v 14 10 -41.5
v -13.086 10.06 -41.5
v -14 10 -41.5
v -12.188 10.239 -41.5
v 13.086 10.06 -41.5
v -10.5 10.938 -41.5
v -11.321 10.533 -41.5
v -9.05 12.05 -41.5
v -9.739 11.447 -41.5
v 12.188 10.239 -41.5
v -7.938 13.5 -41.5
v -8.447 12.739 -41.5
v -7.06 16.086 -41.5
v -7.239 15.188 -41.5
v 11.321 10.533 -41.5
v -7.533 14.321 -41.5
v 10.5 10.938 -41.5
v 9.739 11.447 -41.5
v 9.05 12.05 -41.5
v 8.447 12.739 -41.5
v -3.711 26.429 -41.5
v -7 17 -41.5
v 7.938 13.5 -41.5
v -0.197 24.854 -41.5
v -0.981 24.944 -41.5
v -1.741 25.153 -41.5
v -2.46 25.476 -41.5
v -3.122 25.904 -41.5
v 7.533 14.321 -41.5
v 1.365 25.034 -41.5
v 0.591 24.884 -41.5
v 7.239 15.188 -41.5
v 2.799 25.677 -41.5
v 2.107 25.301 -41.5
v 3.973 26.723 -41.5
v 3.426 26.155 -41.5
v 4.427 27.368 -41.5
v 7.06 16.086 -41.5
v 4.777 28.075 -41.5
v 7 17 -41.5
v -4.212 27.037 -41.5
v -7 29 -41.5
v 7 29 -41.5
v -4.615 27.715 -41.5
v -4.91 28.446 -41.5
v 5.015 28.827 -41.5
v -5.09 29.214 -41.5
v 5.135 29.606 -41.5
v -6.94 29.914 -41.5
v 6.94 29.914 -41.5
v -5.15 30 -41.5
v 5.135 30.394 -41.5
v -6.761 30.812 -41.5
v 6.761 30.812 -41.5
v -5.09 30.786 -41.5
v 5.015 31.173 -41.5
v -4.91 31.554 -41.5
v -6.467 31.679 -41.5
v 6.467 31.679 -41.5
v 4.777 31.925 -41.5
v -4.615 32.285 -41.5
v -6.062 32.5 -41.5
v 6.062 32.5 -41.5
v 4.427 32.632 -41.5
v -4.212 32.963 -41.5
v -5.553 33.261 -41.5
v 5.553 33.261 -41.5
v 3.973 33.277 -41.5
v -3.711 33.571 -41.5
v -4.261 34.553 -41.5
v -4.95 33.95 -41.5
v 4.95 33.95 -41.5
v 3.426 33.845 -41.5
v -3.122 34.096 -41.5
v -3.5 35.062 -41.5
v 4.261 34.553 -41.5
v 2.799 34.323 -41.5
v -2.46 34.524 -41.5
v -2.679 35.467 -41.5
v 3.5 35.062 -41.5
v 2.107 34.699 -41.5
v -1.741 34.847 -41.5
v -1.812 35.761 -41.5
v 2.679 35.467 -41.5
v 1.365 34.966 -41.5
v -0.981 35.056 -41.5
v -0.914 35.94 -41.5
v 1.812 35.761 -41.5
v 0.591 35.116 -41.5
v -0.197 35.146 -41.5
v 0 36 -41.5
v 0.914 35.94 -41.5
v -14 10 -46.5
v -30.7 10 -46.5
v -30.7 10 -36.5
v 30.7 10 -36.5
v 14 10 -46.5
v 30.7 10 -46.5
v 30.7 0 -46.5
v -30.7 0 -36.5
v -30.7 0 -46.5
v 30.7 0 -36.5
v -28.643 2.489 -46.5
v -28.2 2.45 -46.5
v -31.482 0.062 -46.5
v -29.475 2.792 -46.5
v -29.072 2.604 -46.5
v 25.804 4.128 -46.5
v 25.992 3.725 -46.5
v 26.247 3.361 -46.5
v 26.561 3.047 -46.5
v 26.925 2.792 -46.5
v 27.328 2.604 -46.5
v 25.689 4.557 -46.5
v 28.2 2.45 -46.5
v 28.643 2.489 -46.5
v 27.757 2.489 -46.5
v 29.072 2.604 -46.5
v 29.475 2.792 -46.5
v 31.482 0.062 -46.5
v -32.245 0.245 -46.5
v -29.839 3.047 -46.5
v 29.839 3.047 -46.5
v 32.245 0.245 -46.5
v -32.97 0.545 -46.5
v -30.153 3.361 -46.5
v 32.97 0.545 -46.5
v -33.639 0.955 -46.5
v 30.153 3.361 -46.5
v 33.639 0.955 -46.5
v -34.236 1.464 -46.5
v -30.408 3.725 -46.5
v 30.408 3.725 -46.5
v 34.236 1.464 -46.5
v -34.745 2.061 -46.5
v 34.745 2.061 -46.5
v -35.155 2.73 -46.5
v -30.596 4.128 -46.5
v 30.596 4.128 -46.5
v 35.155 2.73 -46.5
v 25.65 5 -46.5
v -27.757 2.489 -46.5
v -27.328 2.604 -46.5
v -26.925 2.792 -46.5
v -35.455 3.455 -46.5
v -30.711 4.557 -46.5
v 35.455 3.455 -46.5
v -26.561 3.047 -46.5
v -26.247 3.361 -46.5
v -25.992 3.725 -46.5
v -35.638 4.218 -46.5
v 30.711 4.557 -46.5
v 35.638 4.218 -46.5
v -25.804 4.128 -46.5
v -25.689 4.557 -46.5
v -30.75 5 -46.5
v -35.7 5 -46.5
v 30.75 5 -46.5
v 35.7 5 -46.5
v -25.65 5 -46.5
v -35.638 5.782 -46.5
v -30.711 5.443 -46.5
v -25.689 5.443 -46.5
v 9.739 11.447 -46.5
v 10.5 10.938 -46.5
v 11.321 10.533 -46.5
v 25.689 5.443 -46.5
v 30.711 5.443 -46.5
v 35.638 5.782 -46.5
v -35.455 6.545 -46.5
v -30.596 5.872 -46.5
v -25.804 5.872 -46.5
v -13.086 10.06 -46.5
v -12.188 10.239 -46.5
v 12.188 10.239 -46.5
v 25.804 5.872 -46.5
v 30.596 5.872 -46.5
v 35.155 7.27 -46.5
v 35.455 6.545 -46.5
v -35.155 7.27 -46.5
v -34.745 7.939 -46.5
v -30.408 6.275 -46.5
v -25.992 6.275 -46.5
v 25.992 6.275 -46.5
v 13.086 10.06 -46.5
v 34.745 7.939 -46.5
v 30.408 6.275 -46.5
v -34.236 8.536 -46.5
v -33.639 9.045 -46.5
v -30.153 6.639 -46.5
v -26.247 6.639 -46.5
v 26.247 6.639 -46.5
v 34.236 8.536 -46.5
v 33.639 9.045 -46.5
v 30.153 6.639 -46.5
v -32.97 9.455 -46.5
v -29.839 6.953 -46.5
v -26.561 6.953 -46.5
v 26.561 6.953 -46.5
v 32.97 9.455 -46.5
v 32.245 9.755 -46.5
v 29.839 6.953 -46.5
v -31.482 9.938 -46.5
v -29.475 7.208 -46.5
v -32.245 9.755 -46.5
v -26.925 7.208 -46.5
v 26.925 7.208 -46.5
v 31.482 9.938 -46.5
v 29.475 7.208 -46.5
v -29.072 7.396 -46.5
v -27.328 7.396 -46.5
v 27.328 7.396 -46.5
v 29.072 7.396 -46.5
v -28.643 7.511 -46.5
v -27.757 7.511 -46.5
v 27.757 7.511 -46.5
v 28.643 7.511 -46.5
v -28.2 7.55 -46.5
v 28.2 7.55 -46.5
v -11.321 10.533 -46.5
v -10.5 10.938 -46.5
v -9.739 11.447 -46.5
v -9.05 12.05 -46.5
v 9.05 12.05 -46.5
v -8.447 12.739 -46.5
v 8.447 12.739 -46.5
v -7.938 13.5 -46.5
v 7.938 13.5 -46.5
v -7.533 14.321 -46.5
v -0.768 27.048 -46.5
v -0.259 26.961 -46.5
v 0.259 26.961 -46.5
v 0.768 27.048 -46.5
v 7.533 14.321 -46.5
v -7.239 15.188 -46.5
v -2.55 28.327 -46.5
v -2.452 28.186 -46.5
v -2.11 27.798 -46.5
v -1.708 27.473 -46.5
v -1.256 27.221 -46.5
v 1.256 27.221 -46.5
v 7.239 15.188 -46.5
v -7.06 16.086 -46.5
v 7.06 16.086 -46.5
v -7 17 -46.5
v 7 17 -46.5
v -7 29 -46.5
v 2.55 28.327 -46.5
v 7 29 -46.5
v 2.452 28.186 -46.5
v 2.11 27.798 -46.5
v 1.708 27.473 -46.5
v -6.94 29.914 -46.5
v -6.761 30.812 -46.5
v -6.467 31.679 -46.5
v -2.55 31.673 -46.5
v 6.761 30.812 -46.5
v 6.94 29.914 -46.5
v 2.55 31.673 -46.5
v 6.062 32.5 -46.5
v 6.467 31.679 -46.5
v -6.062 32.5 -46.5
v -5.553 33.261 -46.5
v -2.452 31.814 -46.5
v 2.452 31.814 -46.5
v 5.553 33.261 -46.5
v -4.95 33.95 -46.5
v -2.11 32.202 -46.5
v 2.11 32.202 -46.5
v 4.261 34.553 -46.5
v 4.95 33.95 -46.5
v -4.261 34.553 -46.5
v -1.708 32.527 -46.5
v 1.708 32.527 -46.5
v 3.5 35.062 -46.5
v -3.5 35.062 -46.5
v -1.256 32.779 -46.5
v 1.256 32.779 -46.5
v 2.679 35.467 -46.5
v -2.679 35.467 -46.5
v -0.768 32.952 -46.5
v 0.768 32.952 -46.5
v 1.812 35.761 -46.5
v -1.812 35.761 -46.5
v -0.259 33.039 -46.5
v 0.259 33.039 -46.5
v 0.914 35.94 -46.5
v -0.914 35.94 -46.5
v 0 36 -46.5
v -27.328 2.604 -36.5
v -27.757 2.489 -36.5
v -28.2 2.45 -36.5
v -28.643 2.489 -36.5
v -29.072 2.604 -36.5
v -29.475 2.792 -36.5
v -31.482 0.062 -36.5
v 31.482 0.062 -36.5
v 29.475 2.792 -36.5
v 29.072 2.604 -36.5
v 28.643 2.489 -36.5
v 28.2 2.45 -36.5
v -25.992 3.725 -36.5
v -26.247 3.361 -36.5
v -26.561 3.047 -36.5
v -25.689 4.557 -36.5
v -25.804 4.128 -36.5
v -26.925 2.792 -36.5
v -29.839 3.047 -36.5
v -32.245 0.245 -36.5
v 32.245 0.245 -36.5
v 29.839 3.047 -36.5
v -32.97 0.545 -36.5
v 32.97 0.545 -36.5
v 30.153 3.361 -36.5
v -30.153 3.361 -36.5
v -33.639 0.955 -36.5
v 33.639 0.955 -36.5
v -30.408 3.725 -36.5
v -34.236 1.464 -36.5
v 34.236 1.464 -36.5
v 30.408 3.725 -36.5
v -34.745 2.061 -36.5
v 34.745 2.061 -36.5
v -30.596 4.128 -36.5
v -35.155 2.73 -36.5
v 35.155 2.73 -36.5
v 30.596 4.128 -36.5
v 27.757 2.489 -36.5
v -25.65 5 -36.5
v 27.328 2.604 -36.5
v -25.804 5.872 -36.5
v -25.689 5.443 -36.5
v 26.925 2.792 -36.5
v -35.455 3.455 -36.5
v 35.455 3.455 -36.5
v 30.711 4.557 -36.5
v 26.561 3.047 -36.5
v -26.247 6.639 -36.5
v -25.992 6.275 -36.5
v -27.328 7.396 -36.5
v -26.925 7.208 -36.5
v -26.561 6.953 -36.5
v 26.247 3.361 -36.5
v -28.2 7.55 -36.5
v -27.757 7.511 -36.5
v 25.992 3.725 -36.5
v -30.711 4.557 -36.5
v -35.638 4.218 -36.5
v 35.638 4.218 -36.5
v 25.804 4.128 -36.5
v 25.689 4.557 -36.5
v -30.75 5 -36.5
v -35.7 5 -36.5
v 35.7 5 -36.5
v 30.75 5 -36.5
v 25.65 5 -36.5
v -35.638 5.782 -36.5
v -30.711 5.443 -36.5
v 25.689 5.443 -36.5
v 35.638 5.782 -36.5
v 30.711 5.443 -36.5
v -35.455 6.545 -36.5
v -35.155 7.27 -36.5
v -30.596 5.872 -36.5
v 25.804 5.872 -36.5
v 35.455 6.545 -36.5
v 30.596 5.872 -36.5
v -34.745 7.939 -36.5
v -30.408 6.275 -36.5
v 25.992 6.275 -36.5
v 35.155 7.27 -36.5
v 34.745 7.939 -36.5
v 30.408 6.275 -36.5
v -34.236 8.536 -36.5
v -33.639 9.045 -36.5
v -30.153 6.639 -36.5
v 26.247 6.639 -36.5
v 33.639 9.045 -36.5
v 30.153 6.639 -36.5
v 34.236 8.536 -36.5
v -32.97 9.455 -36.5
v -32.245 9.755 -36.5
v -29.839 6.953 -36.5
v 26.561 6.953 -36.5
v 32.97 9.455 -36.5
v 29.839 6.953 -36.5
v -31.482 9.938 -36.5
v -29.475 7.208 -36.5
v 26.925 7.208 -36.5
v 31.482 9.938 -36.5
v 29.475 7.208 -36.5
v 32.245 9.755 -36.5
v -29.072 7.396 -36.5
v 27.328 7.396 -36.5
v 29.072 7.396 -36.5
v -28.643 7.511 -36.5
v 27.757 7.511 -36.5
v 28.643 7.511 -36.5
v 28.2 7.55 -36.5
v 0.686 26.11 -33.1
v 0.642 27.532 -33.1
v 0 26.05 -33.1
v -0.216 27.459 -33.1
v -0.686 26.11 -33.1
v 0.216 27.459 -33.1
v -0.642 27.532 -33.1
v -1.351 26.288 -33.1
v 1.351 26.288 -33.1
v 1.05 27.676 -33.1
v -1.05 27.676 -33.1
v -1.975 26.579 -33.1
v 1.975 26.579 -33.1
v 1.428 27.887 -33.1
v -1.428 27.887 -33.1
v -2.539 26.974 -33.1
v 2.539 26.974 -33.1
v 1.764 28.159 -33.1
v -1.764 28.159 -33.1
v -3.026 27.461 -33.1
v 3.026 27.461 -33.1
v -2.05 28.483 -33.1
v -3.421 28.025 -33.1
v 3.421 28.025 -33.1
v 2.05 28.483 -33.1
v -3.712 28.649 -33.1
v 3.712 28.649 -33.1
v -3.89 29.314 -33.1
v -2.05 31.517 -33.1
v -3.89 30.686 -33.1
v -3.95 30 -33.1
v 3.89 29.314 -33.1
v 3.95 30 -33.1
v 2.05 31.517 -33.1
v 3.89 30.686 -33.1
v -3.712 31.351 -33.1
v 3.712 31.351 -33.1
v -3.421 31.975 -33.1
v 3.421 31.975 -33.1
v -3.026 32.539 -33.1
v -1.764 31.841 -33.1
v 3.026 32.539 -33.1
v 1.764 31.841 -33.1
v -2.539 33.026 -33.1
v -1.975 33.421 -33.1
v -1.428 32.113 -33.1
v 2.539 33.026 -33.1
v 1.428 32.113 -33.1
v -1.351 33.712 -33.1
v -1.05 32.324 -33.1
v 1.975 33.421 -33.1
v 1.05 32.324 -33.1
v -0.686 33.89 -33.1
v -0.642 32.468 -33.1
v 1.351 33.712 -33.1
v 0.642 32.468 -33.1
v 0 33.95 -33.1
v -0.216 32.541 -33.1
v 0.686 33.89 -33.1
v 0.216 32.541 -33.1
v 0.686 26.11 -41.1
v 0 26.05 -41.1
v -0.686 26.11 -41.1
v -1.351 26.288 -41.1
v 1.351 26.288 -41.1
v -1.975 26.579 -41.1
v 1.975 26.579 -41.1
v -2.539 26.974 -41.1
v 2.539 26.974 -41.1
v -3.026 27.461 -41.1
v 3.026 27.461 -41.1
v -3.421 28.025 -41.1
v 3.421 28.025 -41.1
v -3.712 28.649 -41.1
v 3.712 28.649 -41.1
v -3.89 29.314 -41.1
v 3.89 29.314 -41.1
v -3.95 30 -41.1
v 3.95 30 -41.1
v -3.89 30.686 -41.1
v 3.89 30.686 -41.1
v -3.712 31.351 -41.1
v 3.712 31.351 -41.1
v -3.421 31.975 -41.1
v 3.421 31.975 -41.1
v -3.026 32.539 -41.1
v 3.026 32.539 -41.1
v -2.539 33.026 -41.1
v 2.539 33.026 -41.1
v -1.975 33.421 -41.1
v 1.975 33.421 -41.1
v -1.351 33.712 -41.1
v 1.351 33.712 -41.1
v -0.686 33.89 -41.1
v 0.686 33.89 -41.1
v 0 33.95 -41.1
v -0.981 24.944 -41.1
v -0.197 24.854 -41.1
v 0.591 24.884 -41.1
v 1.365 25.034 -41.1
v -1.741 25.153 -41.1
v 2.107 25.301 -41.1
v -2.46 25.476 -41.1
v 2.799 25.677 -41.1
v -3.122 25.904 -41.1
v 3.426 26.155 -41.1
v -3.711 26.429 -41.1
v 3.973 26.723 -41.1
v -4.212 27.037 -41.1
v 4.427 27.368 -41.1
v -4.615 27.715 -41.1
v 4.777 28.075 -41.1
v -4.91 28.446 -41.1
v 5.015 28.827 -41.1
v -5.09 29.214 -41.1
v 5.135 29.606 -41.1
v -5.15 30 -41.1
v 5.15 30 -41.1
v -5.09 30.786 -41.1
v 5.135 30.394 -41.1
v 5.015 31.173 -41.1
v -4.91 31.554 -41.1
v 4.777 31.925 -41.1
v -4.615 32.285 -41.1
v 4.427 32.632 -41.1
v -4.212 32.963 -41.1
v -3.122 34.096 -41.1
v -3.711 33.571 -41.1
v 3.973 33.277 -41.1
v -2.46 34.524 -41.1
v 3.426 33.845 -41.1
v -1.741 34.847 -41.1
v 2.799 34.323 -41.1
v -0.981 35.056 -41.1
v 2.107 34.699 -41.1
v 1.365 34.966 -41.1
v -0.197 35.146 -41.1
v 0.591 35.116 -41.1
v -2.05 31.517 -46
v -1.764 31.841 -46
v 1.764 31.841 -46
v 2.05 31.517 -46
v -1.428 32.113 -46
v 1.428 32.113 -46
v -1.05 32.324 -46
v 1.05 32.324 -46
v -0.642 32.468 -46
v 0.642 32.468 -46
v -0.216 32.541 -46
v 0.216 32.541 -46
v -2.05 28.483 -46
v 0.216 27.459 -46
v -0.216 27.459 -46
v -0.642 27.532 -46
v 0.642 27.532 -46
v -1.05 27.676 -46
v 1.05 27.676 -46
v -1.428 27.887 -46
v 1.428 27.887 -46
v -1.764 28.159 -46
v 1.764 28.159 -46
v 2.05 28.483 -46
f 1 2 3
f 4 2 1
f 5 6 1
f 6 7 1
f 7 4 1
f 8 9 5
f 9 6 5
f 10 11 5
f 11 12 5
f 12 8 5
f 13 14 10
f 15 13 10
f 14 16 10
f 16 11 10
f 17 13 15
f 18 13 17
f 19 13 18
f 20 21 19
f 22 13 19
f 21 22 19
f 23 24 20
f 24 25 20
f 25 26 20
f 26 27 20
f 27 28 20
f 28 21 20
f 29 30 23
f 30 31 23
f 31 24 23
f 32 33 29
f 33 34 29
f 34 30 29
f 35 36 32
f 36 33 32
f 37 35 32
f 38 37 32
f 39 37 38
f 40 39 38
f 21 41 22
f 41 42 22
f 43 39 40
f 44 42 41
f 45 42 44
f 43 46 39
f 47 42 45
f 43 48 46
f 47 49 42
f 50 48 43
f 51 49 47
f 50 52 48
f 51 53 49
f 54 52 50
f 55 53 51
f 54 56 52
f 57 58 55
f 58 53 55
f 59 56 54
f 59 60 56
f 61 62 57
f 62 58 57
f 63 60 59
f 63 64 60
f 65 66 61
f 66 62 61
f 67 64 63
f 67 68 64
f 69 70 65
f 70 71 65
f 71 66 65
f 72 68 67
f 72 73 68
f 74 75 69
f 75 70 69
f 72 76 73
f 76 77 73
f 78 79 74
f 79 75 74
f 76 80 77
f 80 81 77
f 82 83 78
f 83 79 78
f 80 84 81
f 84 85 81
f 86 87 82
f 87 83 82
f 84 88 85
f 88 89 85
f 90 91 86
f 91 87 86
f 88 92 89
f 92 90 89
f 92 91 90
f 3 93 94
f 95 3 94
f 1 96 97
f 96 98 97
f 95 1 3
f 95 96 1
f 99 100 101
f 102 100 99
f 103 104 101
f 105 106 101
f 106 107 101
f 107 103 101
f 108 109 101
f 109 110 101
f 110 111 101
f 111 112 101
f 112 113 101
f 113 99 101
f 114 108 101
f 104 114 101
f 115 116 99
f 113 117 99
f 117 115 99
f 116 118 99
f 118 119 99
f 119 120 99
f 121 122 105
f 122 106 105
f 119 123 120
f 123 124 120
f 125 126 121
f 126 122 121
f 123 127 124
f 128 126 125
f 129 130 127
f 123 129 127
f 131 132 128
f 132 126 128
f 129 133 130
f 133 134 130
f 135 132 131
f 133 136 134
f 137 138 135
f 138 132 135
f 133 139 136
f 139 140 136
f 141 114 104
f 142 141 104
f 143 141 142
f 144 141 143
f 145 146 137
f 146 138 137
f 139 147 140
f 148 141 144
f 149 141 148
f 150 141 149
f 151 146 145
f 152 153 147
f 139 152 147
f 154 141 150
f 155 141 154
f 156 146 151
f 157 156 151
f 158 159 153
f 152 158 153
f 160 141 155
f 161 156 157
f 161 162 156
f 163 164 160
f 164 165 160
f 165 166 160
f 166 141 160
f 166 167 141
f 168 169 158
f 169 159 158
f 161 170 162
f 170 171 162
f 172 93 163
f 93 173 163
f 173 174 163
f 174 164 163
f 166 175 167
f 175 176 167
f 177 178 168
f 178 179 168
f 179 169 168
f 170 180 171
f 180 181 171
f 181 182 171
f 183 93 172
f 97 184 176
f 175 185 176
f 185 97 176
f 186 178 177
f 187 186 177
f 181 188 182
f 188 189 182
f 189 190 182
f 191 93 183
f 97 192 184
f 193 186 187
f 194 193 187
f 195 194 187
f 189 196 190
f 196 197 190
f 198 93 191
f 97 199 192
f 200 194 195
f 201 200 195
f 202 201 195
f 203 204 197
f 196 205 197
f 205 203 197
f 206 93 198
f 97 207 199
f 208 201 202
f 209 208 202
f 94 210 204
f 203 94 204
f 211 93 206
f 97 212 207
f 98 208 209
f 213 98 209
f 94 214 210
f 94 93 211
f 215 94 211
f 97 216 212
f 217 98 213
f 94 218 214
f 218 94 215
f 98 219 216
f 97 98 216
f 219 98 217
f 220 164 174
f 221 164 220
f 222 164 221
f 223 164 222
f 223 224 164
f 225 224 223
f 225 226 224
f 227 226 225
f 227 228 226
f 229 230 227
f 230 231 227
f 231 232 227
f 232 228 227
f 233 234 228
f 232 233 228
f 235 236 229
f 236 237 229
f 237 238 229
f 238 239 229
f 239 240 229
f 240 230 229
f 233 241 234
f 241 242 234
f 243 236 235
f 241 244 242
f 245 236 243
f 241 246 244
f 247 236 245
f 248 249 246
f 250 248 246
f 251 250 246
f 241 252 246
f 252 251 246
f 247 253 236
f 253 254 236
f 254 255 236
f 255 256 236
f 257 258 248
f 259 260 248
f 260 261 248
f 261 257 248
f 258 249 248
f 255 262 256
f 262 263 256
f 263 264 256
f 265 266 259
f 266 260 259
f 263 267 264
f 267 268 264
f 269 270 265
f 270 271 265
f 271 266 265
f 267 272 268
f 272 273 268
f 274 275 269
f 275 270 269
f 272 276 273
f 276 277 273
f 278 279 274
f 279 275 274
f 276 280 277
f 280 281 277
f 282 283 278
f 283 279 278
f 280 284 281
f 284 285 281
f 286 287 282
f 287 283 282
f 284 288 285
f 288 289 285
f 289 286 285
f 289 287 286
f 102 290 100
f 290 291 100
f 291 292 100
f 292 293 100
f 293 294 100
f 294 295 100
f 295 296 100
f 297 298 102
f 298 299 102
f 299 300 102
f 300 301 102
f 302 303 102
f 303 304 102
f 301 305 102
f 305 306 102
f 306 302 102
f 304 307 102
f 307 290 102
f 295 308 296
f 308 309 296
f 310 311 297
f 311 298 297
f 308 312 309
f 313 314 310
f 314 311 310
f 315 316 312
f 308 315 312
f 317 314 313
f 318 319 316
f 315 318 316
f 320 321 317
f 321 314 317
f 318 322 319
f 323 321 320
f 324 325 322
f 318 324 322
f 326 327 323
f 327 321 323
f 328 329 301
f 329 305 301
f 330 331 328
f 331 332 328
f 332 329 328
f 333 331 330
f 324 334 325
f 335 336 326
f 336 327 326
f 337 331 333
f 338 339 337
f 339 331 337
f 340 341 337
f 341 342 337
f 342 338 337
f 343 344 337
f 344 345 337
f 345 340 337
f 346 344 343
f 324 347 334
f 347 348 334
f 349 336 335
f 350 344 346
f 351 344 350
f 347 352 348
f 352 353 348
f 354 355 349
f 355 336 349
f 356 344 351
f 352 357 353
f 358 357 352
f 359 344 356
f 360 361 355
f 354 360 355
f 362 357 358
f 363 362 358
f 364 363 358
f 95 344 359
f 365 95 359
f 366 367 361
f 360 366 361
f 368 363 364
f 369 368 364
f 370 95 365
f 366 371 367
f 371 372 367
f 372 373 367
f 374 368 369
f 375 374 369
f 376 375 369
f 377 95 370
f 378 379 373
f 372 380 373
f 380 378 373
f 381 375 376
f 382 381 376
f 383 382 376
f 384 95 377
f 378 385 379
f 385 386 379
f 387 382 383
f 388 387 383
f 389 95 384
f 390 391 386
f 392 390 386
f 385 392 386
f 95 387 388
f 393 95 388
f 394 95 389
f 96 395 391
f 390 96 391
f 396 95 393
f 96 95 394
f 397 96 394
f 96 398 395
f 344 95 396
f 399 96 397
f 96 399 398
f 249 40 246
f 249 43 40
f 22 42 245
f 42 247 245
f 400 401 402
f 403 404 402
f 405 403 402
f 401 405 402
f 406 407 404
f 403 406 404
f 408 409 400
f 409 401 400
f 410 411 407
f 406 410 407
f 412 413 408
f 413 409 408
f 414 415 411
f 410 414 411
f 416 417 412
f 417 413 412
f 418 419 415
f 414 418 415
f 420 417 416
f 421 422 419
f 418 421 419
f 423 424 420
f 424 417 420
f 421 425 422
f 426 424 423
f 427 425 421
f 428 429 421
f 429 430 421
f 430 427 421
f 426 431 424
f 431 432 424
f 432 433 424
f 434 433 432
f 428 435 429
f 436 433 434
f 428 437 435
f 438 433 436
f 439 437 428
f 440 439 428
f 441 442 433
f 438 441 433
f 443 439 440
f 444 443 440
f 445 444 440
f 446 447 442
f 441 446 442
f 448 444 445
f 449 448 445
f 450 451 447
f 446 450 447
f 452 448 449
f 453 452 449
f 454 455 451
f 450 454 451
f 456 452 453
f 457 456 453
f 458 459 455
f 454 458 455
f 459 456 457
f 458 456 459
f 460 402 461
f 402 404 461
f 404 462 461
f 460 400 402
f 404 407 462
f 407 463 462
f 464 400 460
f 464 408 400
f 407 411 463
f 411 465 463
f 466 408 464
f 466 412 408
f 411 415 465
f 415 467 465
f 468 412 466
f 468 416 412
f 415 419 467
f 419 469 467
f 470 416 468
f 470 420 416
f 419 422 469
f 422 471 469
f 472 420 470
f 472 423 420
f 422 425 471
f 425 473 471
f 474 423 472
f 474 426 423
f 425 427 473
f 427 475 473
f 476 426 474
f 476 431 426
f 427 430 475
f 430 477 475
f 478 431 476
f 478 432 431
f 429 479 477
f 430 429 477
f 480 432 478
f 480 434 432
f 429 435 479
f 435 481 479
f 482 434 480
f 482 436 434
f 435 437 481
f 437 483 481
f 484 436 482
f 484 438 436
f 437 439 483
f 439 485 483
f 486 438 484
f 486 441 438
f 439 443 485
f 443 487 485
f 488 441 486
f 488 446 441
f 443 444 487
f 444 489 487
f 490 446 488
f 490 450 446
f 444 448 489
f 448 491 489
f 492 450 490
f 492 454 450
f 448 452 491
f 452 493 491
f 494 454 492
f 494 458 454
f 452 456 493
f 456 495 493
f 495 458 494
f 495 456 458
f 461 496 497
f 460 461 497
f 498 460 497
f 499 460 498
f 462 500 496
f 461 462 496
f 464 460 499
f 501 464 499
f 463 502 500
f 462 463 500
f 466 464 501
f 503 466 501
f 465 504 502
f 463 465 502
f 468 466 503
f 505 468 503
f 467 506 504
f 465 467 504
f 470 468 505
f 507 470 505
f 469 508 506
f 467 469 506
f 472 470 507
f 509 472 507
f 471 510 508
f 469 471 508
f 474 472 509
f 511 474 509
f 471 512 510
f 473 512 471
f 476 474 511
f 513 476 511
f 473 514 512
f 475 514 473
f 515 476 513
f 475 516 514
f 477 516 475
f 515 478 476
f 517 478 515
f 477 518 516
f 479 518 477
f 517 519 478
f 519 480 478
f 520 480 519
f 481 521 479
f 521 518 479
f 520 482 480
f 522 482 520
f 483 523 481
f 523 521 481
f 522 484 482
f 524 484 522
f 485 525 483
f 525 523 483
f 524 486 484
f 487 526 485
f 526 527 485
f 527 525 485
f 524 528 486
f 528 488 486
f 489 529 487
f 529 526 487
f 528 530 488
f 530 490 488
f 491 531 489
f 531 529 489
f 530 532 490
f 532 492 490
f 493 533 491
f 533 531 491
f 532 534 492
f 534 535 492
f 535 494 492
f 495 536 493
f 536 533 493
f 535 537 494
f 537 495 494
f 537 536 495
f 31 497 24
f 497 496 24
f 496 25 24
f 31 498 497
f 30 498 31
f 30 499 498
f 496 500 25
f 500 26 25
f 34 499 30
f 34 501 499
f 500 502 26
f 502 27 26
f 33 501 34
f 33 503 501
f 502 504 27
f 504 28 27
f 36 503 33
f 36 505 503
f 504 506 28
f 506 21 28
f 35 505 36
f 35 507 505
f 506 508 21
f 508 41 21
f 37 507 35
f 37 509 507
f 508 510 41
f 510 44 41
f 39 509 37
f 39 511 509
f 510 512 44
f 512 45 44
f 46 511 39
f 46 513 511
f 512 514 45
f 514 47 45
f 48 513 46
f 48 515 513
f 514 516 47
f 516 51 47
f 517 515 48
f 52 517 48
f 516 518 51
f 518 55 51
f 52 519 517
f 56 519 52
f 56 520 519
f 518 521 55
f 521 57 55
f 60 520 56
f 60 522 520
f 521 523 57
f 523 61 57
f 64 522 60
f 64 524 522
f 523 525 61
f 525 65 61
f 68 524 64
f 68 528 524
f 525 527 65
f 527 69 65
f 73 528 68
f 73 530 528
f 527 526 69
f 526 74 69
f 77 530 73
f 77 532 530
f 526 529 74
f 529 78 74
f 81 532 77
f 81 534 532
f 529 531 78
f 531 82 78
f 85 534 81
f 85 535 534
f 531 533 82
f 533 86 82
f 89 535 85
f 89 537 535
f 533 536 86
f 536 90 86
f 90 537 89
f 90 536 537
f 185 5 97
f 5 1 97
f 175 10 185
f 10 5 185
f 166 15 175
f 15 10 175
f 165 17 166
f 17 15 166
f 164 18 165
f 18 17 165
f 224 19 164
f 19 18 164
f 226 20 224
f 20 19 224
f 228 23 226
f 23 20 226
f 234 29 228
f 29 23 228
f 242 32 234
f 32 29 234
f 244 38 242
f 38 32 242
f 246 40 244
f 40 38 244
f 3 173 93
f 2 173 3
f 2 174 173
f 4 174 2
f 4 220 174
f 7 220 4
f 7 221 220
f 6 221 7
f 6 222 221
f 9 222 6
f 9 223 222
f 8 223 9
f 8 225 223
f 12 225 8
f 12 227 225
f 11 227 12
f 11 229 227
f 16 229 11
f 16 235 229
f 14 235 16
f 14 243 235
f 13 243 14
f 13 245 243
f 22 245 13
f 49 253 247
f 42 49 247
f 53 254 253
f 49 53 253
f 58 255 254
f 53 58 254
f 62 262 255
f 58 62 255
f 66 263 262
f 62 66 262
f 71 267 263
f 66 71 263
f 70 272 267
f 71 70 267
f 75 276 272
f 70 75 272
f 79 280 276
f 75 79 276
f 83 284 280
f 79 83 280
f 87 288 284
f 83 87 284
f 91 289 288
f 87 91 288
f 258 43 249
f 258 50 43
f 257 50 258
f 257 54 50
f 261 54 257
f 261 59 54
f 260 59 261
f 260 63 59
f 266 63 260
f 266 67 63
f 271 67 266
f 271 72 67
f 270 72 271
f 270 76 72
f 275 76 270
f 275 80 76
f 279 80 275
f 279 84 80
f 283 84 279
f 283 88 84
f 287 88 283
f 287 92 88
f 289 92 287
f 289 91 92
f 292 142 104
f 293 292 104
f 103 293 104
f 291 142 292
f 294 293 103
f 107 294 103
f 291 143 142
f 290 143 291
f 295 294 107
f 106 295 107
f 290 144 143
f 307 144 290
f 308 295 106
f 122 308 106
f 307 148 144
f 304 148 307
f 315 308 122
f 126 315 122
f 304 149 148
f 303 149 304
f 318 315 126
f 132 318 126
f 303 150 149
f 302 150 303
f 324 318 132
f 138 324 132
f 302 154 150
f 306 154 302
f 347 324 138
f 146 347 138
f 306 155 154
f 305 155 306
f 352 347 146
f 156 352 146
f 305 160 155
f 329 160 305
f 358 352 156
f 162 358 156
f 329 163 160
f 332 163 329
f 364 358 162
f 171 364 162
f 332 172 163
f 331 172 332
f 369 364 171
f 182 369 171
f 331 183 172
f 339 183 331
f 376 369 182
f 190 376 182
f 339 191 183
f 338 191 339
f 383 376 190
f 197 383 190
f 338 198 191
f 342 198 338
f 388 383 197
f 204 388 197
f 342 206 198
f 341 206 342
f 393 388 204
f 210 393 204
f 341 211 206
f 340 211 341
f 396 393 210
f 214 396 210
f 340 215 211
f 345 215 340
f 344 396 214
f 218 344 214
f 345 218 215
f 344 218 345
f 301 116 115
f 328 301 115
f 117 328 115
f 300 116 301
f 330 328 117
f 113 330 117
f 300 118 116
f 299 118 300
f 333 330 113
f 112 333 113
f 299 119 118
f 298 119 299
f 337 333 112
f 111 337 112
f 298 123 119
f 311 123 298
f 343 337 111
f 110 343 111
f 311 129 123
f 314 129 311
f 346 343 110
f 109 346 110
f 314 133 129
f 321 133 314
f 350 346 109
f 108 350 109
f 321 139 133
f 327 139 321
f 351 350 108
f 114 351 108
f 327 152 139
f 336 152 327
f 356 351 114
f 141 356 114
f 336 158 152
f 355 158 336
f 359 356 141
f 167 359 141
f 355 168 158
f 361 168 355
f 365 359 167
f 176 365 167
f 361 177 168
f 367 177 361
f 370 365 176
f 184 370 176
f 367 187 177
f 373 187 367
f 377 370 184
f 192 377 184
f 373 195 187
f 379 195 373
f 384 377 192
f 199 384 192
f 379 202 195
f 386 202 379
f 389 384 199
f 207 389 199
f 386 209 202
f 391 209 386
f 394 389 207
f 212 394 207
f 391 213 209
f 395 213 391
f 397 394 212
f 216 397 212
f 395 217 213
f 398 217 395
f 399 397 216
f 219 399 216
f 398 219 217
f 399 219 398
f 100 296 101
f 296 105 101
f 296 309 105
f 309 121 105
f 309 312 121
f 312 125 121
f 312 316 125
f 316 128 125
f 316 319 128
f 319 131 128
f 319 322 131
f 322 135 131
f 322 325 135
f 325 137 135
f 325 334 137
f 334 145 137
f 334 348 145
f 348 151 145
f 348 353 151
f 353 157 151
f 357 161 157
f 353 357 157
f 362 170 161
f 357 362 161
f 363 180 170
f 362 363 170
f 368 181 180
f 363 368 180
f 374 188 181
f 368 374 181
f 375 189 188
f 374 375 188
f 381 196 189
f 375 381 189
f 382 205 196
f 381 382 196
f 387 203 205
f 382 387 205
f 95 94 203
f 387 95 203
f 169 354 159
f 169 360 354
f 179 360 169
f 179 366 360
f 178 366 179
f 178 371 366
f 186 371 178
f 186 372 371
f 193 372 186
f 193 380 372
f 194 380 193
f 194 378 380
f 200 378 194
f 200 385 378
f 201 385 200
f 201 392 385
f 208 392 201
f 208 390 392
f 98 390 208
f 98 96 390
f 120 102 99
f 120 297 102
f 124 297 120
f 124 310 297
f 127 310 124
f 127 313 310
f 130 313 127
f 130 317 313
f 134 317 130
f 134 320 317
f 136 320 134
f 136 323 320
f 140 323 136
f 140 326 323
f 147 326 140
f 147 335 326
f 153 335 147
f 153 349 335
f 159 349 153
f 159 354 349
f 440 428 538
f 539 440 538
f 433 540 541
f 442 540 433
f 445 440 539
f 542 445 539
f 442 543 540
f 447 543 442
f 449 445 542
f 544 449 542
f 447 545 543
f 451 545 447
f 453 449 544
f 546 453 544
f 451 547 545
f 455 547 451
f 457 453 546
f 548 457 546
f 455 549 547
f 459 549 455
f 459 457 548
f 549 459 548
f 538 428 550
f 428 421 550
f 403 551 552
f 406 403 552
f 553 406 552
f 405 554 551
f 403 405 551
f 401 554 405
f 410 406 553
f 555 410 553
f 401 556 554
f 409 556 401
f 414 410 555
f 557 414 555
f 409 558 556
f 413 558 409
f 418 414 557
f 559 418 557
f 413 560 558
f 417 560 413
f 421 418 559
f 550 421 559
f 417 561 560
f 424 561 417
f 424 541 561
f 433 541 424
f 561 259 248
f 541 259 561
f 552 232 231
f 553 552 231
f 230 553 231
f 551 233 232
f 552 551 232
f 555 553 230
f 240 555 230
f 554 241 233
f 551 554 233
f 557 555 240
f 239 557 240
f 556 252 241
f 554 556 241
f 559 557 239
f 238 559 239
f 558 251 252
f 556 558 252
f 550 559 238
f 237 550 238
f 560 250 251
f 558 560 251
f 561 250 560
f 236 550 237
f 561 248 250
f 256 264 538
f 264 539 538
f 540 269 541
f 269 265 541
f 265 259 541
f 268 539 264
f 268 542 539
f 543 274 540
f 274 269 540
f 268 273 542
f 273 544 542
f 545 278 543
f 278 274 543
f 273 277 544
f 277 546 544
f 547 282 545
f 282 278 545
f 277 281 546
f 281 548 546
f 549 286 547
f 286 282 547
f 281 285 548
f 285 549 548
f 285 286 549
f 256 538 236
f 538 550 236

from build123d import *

# Parameters (mm, degrees)
SKETCH2_W           = 71.4
SKETCH2_H           = 93
SKETCH2_W_2         = 51.4
SKETCH2_H_2         = 73
BOSS_EXTRUDE1_DEPTH = 10
SKETCH3_W           = 14
SKETCH3_H           = 26
SKETCH3_R           = 2.75
BOSS_EXTRUDE2_DEPTH = 5
SKETCH4_R           = 3.95
SKETCH4_R_2         = 2.75
BOSS_EXTRUDE3_DEPTH = 8.4
SKETCH5_W           = 51.4
SKETCH5_H           = 10
CUT_EXTRUDE1_DEPTH  = 65.130647899
SKETCH6_R           = 5.15
SKETCH6_R_2         = 3.95
BOSS_EXTRUDE4_DEPTH = 0.4
SKETCH7_W           = 71.4
SKETCH7_H           = 25
CUT_EXTRUDE2_DEPTH  = 65.130647899
FILLET1_START       = -46.5
FILLET1_DEPTH       = 5
FILLET1_2_DEPTH     = 5
SKETCH10_W          = 71.4
SKETCH10_H          = 58
CUT_EXTRUDE3_DEPTH  = 65.130647899
SKETCH9_R           = 2.55
CUT_EXTRUDE4_DEPTH  = 53.440919138
FILLET2_R           = 5
SKETCH11_R          = 2.75
BOSS_EXTRUDE5_DEPTH = 13.4
CHAMFER1_SIZE       = 0.5


with BuildPart() as part:
    # Sketch2 → Boss-Extrude1 (new body)
    with BuildSketch(Plane(origin=(0, 0, 0), x_dir=(1, 0, 0), z_dir=(0, 1, 0))):
        Rectangle(SKETCH2_W, SKETCH2_H)
        Rectangle(SKETCH2_W_2, SKETCH2_H_2, mode=Mode.SUBTRACT)
    extrude(amount=BOSS_EXTRUDE1_DEPTH)

    # Sketch3 → Boss-Extrude2 (add)
    with BuildSketch(Plane(origin=(0, 0, -46.5), x_dir=(-1, 0, 0), z_dir=(0, 0, -1))):
        with Locations((0, 23)):
            Rectangle(SKETCH3_W, SKETCH3_H)
        with Locations((0, 30)):
            Circle(SKETCH3_R, mode=Mode.SUBTRACT)
    extrude(amount=-BOSS_EXTRUDE2_DEPTH)

    # Sketch4 → Boss-Extrude3 (add)
    with BuildSketch(Plane.XY.offset(-41.5)):
        with Locations(Location((0, 30, 0), (0, 0, 180))):
            Circle(SKETCH4_R)
        with Locations(Location((0, 30, 0), (0, 0, 180))):
            Circle(SKETCH4_R_2, mode=Mode.SUBTRACT)
    extrude(amount=BOSS_EXTRUDE3_DEPTH)

    # Sketch5 → Cut-Extrude1 (cut, through all)
    with BuildSketch(Plane(origin=(0, 10, 0), x_dir=(1, 0, 0), z_dir=(0, 1, 0))):
        with Locations((0, -41.5)):
            Rectangle(SKETCH5_W, SKETCH5_H)
    extrude(amount=-CUT_EXTRUDE1_DEPTH, mode=Mode.SUBTRACT)

    # Sketch6 → Boss-Extrude4 (add)
    with BuildSketch(Plane.XY.offset(-41.5)):
        with Locations(Location((0, 30, 0), (0, 0, 180))):
            Circle(SKETCH6_R)
        with Locations((0, 30)):
            Circle(SKETCH6_R_2, mode=Mode.SUBTRACT)
    extrude(amount=BOSS_EXTRUDE4_DEPTH)

    # Sketch7 → Cut-Extrude2 (cut, through all)
    with BuildSketch(Plane(origin=(0, 10, 0), x_dir=(1, 0, 0), z_dir=(0, 1, 0))):
        with Locations((0, -34)):
            Rectangle(SKETCH7_W, SKETCH7_H)
    extrude(amount=-CUT_EXTRUDE2_DEPTH, mode=Mode.SUBTRACT)

    # Fillet1: read off the stored shape, not the designer's step
    # Fillet1 outline → Fillet1 (cut)
    with BuildSketch(Plane.XY.offset(FILLET1_START)):
        with BuildLine():
            ThreePointArc((0, 36), (4.949747468, 33.949747468), (7, 29))
            Line((7, 29), (7, 36))
            Line((7, 36), (0, 36))
        make_face()
        with BuildLine():
            ThreePointArc((-7, 29), (-4.949747468, 33.949747468), (0, 36))
            Line((0, 36), (-7, 36))
            Line((-7, 36), (-7, 29))
        make_face()
    extrude(amount=FILLET1_DEPTH, mode=Mode.SUBTRACT)

    # Fillet1 2 outline → Fillet1 2 (add)
    with BuildSketch(Plane.XY.offset(FILLET1_START)):
        with BuildLine():
            ThreePointArc((14, 10), (9.050252532, 12.050252532), (7, 17))
            Line((7, 17), (7, 10))
            Line((7, 10), (14, 10))
        make_face()
        with BuildLine():
            Line((-14, 10), (-7, 10))
            Line((-7, 10), (-7, 17))
            ThreePointArc((-7, 17), (-9.050252532, 12.050252532), (-14, 10))
        make_face()
    extrude(amount=FILLET1_2_DEPTH)

    # Sketch10 → Cut-Extrude3 (cut, through all)
    with BuildSketch(Plane(origin=(0, 10, 0), x_dir=(1, 0, 0), z_dir=(0, 1, 0))):
        with Locations((0, 7.5)):
            Rectangle(SKETCH10_W, SKETCH10_H)
    extrude(amount=-CUT_EXTRUDE3_DEPTH, mode=Mode.SUBTRACT)

    # Sketch9 → Cut-Extrude4 (cut, through all)
    with BuildSketch(Plane(origin=(0, 0, -46.5), x_dir=(-1, 0, 0), z_dir=(0, 0, -1))):
        with Locations((-28.2, 5)):
            Circle(SKETCH9_R)
        with Locations((28.2, 5)):
            Circle(SKETCH9_R)
    extrude(amount=-CUT_EXTRUDE4_DEPTH, mode=Mode.SUBTRACT)

    # Fillet2
    fillet2_edges = [part.edges().sort_by_distance(p)[0] for p in [
        (-35.7, 10, -41.5),
        (-35.7, 0, -41.5),
        (35.7, 0, -41.5),
        (35.7, 10, -41.5),
    ]]
    fillet(fillet2_edges, radius=FILLET2_R - 0.0001)  # a hair under: the kernel refuses the full size

    # Sketch11 → Boss-Extrude5 (add)
    with BuildSketch(Plane(origin=(0, 0, -46.5), x_dir=(-1, 0, 0), z_dir=(0, 0, -1))):
        with Locations((0, 30)):
            Circle(SKETCH11_R)
        with BuildLine():
            Line((-2.05, 31.516575089), (-2.05, 28.483424911))
            ThreePointArc((-2.05, 28.483424911), (0, 27.45), (2.05, 28.483424911))
            Line((2.05, 28.483424911), (2.05, 31.516575089))
            ThreePointArc((2.05, 31.516575089), (0, 32.55), (-2.05, 31.516575089))
        make_face(mode=Mode.SUBTRACT)
    extrude(amount=-BOSS_EXTRUDE5_DEPTH)

    # Chamfer1
    chamfer1_edges = [part.edges().sort_by_distance(p)[0] for p in [
        (0, 32.55, -46.5),
        (-2.05, 30, -46.5),
        (0, 27.45, -46.5),
        (2.05, 30, -46.5),
    ]]
    chamfer(chamfer1_edges, length=CHAMFER1_SIZE)


solid = part.part
